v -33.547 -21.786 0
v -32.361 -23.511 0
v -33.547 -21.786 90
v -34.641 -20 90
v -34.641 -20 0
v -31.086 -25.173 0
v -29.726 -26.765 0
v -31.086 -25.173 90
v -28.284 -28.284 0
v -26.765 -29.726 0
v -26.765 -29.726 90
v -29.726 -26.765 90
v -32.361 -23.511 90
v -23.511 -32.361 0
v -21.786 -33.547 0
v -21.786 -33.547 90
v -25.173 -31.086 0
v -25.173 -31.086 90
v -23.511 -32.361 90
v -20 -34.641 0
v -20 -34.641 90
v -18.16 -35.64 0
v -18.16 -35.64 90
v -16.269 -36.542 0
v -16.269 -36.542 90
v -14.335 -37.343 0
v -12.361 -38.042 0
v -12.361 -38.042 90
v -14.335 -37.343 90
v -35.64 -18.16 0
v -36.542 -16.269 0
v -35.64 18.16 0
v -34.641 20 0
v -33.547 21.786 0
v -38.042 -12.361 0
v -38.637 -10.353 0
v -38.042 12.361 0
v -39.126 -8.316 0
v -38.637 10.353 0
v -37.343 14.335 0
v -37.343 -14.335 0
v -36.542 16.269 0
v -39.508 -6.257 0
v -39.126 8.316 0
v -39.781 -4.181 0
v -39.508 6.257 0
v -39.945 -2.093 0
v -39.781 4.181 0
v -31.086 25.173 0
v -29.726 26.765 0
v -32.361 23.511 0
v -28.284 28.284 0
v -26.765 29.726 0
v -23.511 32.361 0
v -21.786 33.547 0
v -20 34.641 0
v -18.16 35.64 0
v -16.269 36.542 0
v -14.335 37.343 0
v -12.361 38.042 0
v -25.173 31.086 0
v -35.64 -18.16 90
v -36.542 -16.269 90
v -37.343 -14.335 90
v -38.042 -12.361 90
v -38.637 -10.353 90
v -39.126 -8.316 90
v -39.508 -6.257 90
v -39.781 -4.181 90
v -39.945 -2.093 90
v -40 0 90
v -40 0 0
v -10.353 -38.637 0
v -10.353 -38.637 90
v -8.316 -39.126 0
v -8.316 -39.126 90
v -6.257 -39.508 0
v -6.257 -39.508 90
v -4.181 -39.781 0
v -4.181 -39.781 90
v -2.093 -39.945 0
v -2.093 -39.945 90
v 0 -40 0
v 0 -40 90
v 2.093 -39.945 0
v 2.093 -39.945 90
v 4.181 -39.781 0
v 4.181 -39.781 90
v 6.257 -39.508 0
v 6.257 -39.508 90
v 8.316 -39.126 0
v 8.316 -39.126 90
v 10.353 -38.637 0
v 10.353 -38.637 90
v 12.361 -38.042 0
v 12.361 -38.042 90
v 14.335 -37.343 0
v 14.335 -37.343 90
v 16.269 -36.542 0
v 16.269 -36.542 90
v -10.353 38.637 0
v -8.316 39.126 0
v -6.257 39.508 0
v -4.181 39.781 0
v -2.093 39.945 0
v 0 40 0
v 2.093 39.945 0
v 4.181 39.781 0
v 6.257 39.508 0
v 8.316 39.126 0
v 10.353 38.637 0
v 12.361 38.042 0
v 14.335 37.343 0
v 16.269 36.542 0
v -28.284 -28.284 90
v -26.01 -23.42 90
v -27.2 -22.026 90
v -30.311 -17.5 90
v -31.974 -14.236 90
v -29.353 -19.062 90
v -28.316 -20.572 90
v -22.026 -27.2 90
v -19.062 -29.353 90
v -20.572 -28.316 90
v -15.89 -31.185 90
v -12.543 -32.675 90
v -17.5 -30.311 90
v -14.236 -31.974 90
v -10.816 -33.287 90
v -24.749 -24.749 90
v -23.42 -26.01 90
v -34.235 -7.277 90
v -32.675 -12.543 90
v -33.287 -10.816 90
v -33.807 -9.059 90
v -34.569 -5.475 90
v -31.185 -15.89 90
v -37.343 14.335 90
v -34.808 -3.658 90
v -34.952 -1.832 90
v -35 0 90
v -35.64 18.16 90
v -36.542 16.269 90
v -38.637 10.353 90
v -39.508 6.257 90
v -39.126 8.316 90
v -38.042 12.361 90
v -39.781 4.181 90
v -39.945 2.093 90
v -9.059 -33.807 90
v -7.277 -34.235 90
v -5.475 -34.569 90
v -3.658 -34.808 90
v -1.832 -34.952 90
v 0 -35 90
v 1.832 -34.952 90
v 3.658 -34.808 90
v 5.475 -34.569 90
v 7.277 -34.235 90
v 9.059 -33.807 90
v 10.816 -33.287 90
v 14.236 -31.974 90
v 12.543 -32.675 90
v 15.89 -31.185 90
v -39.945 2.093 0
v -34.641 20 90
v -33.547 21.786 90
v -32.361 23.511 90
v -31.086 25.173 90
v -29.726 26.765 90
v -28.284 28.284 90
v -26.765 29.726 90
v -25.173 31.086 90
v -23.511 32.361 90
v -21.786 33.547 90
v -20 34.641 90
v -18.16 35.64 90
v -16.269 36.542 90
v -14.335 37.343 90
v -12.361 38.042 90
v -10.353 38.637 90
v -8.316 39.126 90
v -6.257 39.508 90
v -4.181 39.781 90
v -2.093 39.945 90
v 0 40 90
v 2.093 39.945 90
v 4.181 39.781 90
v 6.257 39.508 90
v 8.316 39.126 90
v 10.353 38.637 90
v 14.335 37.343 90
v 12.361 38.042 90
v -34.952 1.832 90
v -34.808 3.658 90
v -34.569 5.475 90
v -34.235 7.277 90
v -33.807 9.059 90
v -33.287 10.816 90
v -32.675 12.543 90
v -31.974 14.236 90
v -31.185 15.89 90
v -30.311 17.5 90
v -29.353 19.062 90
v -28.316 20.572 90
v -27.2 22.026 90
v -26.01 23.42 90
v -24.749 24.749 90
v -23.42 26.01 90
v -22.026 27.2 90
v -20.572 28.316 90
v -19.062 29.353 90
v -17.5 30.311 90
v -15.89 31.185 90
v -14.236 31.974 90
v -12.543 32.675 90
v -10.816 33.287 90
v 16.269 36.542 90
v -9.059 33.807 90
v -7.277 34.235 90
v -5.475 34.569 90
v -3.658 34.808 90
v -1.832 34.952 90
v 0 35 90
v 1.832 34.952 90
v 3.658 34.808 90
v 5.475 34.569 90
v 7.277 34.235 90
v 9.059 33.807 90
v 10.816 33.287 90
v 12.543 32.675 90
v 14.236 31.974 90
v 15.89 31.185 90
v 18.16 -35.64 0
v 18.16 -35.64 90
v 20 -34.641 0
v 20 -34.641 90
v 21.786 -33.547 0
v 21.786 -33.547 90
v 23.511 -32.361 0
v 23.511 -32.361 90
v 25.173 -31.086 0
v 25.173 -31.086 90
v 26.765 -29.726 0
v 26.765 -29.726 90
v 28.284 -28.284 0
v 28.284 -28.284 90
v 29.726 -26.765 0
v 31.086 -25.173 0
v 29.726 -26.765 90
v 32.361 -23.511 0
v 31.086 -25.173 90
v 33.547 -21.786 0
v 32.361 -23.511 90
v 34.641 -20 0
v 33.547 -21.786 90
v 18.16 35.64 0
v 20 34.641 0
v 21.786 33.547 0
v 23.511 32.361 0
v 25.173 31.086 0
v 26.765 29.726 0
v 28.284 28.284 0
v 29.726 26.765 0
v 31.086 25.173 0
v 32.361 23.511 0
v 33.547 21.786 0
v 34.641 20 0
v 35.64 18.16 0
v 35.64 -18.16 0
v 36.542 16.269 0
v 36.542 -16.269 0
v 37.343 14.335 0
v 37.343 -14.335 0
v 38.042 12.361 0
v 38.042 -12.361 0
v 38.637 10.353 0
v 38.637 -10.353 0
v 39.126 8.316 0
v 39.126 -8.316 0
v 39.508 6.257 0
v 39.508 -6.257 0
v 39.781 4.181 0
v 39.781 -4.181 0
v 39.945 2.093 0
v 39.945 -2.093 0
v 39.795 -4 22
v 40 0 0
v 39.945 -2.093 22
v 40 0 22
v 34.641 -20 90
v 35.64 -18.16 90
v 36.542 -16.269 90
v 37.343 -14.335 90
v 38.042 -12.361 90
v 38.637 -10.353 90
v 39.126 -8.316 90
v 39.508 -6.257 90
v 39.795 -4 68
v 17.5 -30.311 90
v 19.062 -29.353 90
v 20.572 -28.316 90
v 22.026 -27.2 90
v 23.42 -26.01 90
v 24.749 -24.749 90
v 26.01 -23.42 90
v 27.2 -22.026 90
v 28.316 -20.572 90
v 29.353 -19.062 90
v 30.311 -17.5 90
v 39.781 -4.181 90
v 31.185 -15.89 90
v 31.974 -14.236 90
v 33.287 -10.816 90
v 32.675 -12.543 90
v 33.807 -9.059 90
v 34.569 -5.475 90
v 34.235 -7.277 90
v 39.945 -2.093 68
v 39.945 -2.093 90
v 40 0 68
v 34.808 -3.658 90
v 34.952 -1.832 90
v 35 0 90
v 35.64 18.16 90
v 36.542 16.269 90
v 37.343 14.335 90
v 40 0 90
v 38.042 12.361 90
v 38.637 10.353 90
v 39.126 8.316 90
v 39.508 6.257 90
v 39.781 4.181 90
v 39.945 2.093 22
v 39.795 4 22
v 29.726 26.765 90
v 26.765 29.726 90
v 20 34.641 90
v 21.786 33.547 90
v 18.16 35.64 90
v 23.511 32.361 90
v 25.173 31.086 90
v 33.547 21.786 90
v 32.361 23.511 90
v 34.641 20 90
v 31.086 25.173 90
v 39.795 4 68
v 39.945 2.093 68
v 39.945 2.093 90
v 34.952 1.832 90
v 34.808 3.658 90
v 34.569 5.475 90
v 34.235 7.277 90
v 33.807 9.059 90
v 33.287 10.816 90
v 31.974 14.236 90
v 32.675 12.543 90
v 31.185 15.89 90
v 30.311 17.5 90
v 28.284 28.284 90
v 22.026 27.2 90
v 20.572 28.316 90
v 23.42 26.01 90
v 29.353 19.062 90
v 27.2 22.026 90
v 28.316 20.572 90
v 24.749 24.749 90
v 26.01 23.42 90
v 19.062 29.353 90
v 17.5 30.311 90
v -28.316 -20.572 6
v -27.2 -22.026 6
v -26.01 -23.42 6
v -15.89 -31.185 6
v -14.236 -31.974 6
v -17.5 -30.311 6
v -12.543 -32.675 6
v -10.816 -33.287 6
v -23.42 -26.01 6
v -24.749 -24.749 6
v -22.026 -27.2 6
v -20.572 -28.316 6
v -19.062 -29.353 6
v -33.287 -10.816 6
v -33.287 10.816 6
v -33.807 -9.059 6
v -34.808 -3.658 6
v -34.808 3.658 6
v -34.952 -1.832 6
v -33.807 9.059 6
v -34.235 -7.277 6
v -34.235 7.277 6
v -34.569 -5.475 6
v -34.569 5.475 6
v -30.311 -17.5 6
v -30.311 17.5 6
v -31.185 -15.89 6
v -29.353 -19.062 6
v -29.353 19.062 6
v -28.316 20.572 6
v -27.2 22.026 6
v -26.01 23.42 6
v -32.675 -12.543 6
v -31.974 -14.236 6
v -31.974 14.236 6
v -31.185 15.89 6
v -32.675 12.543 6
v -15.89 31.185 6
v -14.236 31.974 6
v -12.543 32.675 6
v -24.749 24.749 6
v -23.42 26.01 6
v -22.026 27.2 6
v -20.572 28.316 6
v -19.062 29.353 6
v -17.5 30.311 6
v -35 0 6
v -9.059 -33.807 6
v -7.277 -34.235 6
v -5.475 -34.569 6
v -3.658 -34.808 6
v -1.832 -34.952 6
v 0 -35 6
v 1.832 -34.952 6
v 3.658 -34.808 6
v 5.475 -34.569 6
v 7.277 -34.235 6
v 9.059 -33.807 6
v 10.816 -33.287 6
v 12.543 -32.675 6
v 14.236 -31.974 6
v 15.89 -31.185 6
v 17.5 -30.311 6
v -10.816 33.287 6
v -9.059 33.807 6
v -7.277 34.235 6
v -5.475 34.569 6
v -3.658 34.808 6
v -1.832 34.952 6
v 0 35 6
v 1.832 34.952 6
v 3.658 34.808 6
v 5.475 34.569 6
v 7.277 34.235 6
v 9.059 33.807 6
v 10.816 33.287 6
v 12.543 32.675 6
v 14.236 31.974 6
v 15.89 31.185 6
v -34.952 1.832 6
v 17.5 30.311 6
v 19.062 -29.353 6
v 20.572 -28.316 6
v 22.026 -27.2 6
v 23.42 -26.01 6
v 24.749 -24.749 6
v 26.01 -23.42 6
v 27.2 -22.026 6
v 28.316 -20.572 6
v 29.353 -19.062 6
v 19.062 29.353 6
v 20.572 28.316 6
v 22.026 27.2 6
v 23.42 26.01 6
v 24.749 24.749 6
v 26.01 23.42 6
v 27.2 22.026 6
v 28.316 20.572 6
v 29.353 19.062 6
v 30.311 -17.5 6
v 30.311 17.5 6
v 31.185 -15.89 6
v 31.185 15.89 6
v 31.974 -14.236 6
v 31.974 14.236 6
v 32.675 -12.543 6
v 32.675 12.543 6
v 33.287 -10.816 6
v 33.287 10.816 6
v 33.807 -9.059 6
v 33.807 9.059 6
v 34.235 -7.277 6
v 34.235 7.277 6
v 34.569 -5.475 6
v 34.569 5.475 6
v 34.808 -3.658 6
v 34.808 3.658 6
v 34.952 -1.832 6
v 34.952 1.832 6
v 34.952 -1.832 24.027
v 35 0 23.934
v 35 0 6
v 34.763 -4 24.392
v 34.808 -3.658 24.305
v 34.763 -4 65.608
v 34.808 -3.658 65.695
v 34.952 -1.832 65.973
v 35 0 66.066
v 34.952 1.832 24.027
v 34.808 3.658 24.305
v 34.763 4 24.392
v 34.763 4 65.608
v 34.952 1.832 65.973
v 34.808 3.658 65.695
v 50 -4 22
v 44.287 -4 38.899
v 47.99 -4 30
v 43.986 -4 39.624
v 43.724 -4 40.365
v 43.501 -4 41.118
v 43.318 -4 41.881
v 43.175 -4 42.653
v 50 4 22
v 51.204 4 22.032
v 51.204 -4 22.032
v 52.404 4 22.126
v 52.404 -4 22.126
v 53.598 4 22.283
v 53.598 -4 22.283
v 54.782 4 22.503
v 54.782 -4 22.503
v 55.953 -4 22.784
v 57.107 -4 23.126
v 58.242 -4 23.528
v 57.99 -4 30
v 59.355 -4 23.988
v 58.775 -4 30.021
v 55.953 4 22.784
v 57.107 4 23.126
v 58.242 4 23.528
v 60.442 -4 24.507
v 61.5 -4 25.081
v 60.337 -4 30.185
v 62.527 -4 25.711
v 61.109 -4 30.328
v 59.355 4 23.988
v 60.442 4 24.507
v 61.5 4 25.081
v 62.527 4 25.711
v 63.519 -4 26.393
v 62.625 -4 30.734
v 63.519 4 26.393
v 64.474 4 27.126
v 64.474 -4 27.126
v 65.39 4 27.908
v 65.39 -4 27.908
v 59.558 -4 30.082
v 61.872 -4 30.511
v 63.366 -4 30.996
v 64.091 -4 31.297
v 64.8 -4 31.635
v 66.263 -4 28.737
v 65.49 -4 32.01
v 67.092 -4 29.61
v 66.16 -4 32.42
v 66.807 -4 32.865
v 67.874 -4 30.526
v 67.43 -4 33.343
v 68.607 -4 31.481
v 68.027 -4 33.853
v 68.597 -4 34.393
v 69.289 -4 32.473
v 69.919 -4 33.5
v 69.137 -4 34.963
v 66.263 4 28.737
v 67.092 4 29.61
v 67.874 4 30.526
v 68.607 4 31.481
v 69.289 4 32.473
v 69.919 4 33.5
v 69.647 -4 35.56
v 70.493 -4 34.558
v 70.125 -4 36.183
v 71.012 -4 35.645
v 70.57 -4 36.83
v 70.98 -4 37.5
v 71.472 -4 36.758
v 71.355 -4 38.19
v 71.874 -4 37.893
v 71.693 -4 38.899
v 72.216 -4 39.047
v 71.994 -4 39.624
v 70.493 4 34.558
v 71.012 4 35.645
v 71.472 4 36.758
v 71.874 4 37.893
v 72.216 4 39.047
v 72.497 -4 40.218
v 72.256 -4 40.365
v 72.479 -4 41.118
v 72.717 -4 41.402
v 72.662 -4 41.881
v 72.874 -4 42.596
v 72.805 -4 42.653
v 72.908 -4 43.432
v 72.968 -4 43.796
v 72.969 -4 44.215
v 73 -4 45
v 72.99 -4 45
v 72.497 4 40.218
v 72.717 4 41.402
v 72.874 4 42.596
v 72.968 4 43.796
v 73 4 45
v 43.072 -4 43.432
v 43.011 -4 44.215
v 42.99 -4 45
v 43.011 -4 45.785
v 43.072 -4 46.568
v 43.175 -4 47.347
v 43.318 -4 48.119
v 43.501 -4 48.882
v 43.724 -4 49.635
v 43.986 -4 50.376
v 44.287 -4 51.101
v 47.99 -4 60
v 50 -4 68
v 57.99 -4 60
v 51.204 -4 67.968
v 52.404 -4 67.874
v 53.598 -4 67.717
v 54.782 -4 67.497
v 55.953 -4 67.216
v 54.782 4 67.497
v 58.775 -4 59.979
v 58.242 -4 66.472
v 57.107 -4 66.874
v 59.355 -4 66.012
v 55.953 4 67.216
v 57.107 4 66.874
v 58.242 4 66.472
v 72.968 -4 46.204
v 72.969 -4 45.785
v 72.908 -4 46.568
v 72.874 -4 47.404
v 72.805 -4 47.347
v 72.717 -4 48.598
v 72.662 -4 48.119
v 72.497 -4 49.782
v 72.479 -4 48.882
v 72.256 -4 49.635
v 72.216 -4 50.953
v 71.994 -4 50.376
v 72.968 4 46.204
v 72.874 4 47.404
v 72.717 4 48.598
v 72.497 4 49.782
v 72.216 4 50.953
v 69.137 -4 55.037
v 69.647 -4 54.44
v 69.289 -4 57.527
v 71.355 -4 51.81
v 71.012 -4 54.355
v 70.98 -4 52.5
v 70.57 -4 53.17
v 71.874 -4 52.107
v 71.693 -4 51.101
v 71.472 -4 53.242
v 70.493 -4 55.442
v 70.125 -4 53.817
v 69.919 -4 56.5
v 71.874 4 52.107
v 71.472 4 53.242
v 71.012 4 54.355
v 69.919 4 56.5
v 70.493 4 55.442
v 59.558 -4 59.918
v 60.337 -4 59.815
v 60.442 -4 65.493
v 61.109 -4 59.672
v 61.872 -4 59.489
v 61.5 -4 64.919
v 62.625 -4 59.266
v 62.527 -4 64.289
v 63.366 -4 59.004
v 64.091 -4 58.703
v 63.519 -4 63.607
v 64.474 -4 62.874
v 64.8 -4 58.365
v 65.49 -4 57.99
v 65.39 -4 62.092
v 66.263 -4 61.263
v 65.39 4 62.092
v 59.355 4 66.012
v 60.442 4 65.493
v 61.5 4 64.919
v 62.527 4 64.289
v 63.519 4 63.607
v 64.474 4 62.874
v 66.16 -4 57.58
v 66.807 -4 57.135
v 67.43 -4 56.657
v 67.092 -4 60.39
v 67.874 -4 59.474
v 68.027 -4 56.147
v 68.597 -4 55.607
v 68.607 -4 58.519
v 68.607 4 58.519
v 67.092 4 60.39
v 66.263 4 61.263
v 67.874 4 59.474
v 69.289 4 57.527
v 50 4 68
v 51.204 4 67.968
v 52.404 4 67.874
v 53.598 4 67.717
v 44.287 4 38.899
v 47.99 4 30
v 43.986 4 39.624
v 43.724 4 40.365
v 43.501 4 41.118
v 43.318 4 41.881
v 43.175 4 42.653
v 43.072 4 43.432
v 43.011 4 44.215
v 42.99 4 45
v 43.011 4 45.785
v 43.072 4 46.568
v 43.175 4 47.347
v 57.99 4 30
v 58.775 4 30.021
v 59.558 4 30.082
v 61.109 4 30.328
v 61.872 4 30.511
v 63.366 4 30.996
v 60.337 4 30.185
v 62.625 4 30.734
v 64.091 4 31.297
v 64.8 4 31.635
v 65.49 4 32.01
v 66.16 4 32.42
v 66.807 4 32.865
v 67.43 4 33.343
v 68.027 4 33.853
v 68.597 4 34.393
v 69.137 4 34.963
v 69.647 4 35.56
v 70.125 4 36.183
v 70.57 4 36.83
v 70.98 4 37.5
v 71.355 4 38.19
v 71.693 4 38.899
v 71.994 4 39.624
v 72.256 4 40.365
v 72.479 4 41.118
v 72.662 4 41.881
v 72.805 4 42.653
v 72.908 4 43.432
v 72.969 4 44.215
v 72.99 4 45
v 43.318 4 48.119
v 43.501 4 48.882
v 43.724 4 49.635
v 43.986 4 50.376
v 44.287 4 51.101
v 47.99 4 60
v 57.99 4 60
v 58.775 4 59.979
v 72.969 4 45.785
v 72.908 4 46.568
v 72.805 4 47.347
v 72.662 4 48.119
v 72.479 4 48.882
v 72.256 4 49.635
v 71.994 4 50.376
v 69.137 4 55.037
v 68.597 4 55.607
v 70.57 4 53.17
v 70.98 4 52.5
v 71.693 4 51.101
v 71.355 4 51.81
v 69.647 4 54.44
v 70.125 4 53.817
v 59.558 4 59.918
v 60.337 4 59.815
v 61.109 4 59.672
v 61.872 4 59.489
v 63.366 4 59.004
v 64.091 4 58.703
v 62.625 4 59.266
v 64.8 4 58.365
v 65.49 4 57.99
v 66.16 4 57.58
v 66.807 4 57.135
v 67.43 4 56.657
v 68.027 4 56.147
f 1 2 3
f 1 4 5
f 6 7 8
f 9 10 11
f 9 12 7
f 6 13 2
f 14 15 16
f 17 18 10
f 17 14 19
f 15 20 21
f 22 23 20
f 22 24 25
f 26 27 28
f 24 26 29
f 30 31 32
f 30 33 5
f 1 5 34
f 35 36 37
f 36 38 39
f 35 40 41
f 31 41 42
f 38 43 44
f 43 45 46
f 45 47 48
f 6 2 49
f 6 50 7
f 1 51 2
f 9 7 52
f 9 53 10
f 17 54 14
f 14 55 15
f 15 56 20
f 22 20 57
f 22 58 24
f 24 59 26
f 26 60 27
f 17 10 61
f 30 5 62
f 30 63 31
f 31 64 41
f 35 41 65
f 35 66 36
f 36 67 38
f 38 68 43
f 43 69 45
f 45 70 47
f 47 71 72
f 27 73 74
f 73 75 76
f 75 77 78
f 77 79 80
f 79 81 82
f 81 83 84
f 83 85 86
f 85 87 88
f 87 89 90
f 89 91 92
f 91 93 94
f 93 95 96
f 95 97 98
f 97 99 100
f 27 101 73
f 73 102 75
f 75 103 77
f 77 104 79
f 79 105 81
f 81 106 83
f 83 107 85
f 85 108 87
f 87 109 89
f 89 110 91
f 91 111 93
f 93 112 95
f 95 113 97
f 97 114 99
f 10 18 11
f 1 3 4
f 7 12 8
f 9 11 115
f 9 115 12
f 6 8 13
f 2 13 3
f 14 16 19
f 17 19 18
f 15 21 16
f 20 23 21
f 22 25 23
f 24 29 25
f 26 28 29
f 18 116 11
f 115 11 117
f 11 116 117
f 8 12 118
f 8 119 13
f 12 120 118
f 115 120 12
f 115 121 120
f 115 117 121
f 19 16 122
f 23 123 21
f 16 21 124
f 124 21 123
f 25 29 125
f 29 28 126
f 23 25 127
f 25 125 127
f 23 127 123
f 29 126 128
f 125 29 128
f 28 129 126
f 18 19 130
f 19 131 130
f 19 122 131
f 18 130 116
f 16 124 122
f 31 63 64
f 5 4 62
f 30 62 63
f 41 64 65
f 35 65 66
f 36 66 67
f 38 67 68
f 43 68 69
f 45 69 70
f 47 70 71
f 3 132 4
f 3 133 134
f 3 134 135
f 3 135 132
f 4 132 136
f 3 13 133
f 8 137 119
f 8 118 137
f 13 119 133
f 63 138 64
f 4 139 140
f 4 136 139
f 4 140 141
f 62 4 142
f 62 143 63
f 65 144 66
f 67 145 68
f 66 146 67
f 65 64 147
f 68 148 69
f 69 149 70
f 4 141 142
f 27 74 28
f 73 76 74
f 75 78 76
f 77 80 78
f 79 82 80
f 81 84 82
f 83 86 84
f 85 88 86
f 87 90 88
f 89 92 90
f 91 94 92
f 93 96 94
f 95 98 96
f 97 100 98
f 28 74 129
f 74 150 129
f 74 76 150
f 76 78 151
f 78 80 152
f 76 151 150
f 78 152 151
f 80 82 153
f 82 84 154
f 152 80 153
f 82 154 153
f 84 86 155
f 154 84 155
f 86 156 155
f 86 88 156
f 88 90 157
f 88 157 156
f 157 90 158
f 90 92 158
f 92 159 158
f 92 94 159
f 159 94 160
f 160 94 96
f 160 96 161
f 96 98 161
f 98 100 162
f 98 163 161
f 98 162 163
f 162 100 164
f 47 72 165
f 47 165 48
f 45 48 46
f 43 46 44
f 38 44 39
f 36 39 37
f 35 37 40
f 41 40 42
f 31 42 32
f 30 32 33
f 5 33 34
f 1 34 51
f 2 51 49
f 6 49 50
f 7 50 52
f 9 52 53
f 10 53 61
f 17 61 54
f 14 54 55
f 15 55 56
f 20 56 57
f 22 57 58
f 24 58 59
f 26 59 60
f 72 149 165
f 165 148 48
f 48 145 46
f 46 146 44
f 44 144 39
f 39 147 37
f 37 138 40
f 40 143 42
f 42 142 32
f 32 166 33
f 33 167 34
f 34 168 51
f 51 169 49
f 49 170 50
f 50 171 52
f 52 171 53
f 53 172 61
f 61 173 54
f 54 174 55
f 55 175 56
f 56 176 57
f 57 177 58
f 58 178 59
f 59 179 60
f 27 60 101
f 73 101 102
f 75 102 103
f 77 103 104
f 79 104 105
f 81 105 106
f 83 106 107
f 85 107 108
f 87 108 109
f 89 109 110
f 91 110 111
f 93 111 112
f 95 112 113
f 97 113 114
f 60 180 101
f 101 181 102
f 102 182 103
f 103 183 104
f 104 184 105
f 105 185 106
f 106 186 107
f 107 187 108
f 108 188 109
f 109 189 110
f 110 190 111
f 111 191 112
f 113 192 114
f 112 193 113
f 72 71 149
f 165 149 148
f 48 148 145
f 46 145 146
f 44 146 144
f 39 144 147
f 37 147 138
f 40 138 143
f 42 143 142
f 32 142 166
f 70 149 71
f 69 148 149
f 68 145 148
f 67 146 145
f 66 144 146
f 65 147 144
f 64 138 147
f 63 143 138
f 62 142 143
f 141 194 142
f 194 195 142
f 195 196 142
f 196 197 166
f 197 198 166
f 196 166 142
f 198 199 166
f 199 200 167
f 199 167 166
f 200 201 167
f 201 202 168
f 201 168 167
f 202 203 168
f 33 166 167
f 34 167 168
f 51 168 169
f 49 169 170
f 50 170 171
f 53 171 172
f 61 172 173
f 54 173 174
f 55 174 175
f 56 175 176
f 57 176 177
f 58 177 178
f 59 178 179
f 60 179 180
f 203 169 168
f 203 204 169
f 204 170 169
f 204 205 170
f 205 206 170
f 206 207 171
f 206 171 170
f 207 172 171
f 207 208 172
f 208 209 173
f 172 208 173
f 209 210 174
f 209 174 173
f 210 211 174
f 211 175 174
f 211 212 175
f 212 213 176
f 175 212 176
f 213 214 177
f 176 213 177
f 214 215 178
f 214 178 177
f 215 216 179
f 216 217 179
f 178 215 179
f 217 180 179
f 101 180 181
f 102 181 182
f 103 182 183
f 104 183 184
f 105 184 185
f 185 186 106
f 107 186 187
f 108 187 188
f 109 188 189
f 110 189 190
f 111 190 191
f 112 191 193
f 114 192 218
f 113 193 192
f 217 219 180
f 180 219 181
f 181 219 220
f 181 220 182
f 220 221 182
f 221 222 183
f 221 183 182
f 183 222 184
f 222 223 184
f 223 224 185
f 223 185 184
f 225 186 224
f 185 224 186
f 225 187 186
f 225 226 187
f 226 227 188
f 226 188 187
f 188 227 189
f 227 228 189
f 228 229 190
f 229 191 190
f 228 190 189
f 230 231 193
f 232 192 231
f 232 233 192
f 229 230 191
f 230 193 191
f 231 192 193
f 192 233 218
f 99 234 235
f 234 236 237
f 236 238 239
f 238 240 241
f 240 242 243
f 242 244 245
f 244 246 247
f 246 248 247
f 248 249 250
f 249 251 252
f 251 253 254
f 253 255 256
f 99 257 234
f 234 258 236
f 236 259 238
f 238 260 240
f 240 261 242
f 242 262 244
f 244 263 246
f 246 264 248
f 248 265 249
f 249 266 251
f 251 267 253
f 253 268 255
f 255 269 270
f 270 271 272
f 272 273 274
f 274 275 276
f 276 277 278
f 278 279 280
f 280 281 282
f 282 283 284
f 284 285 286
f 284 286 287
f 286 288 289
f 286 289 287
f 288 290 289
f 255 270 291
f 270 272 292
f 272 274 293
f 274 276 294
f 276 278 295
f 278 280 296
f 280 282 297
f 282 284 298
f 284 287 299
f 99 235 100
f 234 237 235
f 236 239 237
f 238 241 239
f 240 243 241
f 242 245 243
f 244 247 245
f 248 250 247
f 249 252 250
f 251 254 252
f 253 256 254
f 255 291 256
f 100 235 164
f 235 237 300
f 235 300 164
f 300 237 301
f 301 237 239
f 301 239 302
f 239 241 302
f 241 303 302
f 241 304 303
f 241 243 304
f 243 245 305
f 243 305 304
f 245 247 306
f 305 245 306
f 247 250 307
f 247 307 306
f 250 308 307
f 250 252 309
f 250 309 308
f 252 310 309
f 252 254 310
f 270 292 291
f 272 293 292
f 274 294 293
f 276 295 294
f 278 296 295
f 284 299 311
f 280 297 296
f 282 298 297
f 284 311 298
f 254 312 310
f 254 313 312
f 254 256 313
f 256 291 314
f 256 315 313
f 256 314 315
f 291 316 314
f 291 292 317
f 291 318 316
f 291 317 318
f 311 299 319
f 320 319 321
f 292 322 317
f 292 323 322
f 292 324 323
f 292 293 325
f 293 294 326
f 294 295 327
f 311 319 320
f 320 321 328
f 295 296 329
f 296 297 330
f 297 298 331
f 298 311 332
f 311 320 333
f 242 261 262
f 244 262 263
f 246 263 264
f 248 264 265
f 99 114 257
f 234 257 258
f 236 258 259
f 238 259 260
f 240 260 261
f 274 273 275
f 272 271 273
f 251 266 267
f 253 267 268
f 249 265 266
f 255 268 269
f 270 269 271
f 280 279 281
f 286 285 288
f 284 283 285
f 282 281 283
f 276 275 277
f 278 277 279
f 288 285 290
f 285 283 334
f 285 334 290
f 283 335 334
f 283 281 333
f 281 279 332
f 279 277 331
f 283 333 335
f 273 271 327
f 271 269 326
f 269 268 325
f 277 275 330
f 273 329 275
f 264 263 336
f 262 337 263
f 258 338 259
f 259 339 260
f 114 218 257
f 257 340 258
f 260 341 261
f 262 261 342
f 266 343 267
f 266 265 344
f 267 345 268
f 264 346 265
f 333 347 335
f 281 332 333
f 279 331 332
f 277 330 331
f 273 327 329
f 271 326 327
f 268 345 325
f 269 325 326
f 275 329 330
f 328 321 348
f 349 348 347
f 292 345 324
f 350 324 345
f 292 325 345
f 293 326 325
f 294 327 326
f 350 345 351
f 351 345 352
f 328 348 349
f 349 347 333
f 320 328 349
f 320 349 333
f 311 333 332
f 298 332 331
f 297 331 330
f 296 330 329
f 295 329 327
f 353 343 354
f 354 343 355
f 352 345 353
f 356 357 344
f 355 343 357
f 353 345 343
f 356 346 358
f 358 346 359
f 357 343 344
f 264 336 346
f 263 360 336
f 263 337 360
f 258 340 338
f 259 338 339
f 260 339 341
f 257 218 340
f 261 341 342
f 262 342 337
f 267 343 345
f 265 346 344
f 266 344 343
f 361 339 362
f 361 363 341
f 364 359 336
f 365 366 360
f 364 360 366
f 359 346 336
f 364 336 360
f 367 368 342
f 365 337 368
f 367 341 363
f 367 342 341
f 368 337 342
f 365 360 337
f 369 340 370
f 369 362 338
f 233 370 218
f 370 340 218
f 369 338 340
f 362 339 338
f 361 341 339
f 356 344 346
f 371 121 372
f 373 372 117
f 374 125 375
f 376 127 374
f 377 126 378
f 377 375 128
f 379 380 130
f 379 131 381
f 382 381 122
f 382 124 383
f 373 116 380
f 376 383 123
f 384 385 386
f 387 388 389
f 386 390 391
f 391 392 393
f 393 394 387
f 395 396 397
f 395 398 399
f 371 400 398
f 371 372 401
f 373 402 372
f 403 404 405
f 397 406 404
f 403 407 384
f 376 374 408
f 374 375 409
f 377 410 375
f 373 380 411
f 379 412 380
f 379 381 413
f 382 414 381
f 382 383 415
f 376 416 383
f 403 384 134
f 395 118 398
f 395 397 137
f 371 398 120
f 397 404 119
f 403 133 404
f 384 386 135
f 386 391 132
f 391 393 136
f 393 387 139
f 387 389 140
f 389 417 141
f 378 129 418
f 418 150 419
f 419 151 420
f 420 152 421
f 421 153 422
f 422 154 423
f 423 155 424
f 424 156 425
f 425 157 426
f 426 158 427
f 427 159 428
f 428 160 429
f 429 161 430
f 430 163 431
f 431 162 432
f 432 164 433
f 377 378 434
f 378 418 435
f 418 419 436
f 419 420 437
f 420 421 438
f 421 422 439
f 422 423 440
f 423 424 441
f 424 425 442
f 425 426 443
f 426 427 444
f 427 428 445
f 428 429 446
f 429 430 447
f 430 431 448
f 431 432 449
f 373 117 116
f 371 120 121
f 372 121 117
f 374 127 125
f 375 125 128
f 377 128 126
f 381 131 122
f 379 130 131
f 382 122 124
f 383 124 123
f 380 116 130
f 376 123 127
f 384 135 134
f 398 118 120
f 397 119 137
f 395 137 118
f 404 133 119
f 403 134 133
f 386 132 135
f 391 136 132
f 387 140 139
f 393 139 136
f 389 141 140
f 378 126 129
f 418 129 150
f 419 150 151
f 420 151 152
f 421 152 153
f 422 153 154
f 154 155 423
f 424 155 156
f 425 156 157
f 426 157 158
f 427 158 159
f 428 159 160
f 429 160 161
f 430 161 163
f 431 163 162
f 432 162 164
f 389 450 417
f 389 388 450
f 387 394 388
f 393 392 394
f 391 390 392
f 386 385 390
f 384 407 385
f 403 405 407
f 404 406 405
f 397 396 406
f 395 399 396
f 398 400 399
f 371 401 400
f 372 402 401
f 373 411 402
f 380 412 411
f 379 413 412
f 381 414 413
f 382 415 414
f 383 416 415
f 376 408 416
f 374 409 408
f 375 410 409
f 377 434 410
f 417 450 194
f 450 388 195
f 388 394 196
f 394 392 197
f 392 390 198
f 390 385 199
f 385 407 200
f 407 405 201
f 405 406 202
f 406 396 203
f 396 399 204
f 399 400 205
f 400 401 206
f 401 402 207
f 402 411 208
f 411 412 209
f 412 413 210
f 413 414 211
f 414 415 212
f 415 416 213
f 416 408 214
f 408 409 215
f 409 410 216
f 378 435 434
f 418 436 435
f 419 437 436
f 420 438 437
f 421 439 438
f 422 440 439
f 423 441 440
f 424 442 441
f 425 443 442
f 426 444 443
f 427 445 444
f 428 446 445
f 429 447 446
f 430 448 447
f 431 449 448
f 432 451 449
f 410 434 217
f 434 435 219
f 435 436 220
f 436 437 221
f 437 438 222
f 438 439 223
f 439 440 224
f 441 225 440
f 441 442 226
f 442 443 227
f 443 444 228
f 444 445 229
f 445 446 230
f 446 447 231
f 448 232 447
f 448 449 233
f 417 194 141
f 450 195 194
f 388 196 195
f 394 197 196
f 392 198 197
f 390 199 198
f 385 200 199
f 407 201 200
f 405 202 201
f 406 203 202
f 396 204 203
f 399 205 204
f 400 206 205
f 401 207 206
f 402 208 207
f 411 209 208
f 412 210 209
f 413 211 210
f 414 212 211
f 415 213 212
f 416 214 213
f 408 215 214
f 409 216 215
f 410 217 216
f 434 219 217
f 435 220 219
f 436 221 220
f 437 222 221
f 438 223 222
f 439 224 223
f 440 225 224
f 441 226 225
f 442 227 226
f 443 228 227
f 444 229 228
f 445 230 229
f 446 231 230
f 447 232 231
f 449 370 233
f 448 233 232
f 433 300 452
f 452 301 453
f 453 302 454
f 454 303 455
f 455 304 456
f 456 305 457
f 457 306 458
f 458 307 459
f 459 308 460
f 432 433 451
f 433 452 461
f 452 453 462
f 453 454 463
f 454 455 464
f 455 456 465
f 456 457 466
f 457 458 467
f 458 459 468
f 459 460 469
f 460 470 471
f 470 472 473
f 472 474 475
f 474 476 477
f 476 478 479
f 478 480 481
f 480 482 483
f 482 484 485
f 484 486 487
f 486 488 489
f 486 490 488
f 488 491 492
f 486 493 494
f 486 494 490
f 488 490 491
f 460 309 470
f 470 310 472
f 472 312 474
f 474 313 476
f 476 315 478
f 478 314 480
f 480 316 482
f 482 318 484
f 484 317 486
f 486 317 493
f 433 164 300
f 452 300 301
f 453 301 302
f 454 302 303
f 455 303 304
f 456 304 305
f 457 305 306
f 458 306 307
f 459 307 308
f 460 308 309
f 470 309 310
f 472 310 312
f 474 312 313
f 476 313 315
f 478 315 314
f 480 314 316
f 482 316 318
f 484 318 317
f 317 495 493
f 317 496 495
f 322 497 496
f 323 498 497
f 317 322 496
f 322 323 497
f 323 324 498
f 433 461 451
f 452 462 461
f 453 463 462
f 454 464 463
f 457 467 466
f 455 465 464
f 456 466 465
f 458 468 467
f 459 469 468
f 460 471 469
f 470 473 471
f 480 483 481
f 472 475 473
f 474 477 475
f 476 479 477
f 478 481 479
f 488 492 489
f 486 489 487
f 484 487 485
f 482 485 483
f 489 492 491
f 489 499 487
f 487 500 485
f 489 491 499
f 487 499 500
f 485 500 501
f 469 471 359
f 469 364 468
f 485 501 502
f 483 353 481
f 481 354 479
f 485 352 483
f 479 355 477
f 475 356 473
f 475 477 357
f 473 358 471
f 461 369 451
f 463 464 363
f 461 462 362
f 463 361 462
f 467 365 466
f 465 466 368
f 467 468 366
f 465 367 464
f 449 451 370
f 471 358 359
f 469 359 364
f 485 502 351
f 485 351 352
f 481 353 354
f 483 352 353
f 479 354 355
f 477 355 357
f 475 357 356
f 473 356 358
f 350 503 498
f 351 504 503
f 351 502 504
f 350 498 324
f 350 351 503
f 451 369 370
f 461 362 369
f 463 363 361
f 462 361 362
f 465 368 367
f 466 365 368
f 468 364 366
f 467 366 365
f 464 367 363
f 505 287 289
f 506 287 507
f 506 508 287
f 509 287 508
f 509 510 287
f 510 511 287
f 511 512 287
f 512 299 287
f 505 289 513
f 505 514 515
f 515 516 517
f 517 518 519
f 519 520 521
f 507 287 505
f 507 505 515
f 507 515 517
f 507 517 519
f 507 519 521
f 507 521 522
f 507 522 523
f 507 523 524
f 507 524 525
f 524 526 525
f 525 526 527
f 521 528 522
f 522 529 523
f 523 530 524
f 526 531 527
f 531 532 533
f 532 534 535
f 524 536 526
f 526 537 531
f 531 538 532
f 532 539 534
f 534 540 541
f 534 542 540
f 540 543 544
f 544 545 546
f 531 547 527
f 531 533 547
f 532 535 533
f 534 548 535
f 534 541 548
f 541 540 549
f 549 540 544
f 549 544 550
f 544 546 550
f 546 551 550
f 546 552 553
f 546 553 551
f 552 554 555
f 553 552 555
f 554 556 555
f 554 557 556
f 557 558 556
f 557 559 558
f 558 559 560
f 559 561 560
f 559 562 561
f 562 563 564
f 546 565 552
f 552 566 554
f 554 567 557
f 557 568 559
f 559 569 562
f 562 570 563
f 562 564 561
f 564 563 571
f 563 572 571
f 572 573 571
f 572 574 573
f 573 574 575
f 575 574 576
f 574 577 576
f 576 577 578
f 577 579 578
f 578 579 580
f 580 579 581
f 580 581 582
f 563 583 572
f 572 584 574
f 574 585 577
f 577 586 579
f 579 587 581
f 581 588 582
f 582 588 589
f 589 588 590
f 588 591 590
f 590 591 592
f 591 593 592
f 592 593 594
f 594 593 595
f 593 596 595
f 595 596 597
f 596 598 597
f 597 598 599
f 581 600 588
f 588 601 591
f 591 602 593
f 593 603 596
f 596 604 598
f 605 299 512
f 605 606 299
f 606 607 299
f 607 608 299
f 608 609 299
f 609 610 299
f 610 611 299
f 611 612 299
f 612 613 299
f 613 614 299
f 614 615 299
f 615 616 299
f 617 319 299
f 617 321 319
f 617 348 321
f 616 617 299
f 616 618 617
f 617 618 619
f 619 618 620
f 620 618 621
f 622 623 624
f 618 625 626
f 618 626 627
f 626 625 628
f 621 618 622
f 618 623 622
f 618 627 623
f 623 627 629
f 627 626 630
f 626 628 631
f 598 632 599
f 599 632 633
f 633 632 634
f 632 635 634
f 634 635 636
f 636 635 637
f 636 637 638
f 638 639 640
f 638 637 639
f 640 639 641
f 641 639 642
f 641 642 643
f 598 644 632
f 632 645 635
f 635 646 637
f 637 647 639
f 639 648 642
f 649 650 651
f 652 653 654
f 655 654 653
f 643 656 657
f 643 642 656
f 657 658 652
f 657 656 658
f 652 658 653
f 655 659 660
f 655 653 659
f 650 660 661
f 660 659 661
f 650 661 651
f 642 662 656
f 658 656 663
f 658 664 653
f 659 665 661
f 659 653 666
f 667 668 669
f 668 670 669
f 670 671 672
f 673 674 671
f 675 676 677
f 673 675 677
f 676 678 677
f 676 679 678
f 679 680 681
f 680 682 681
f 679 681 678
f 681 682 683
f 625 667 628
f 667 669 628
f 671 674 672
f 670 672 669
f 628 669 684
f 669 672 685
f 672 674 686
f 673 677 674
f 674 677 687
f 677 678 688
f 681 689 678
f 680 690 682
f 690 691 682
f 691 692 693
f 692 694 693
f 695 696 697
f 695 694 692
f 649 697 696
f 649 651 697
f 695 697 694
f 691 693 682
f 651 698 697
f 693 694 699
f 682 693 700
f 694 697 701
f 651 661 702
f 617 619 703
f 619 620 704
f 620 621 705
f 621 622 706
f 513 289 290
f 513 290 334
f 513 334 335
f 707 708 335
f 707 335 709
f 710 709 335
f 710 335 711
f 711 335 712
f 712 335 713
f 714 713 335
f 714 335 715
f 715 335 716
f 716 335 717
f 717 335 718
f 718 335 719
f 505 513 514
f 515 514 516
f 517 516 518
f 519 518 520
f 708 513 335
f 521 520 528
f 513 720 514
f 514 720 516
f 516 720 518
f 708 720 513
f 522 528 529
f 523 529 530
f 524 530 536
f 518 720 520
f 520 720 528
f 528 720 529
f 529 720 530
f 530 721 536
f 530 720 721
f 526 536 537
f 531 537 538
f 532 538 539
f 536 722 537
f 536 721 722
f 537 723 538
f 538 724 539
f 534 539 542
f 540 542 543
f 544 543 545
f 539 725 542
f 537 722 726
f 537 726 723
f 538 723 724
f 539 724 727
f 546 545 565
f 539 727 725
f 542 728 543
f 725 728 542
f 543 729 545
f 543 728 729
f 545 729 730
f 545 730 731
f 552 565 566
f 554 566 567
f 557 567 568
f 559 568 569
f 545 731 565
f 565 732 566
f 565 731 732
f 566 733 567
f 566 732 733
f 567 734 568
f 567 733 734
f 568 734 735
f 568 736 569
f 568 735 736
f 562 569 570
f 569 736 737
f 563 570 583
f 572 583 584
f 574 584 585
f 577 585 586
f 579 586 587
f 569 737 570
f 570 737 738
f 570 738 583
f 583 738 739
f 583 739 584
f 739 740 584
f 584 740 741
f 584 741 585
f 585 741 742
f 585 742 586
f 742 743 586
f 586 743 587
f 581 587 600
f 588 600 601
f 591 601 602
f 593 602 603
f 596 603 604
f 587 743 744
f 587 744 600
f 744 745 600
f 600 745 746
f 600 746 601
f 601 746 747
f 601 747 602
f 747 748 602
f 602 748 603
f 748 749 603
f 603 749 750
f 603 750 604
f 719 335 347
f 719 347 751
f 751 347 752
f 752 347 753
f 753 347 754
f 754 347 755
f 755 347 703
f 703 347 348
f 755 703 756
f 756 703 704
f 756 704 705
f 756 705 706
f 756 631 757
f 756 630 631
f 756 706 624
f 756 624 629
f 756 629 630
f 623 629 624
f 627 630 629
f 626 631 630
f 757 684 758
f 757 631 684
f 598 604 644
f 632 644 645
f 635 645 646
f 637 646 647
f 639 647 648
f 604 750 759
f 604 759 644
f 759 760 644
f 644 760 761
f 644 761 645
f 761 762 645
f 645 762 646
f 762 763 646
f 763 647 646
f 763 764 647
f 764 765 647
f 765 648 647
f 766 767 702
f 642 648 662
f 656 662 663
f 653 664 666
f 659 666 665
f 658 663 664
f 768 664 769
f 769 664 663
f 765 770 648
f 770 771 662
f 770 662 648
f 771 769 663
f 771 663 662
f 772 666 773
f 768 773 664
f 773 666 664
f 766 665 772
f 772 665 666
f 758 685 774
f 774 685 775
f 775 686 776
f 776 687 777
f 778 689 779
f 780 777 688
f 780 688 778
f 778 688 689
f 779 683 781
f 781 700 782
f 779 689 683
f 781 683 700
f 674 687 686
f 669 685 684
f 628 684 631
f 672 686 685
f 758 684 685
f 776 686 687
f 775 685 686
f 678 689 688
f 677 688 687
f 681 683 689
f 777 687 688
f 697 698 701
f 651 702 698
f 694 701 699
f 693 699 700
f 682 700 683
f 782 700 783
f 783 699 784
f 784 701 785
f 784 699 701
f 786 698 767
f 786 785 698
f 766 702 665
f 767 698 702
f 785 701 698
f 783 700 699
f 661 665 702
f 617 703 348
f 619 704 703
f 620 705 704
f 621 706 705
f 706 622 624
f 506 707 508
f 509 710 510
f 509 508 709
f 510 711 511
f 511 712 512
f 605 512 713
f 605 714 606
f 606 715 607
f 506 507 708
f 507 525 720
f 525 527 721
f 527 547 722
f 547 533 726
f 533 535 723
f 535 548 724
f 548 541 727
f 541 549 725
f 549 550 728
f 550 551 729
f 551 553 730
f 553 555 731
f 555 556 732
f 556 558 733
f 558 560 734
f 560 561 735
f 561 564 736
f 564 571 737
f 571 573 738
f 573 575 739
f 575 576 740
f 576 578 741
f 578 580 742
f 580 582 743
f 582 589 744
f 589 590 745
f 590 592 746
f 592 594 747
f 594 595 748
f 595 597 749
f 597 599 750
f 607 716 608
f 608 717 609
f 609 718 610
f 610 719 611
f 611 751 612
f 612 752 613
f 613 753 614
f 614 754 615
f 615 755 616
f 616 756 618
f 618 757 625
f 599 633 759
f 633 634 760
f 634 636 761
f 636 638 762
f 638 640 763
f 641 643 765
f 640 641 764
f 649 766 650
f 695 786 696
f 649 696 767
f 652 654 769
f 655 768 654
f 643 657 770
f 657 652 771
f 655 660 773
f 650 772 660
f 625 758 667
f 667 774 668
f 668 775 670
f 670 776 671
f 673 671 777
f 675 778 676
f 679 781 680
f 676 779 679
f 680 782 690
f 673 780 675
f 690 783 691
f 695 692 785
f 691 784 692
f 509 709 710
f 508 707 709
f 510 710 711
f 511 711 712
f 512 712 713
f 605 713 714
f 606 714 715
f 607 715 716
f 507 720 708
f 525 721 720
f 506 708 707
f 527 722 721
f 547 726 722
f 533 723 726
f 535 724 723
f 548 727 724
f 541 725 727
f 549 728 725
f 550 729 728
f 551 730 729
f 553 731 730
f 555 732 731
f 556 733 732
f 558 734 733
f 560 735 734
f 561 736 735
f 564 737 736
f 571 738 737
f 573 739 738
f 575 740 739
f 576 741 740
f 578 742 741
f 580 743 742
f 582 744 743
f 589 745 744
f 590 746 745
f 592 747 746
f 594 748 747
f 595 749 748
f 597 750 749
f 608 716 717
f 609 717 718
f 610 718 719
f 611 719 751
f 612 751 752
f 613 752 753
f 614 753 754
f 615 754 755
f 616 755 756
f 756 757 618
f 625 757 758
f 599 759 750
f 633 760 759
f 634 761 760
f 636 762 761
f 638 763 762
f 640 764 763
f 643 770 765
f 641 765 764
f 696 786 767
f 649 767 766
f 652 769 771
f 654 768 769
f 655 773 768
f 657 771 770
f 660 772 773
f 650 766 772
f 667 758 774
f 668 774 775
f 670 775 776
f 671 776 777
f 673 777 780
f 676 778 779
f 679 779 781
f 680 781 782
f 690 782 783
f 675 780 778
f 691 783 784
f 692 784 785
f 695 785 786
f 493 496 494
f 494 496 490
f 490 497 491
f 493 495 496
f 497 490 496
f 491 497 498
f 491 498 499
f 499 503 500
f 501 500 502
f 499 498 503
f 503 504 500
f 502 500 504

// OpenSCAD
// ===== Mug with D-shaped handle on +X side =====

$fn = 120;

// --- Body parameters ---
outer_d   = 80;
inner_d   = 70;
mug_h     = 90;
bottom_th = 6;

// --- Handle parameters ---
hole_h    = 30;   // 取手内側の空間 高さ
hole_w    = 25;   // 取手内側の空間 幅
bar       = 8;    // 取手の太さ(断面)
handle_z  = mug_h / 2;              // 高さ方向の中央
overlap   = 4;    // 本体へ食い込ませる量(確実に union)

// 取手の外形サイズ
out_h = hole_h + 2*bar;   // 46
out_w = hole_w + bar;     // 33  (本体側は直線なので片側のみ)

// D 字断面(XZ 平面上の 2D プロファイル)を作って Y 方向に押し出す
module d_profile(w, h) {
    // 左端(本体側)が直線、右端が半円 の D 形状
    hull() {
        translate([0, -h/2]) square([0.01, h]);          // 直線側
        translate([w - h/2, 0]) circle(d = h);           // 半円側
    }
}

module handle() {
    x0 = outer_d/2 - overlap;   // 直線側の開始 X(本体内部に食い込む)
    difference() {
        // 外形
        translate([x0, bar/2, handle_z])
            rotate([90, 0, 0])
                linear_extrude(height = bar)
                    d_profile(out_w + overlap, out_h);
        // 内側の穴
        translate([x0 + bar + overlap, bar, handle_z])
            rotate([90, 0, 0])
                linear_extrude(height = bar * 2, center = false)
                    translate([-0.01, 0])
                        d_profile(hole_w, hole_h);
    }
}

module body() {
    difference() {
        cylinder(d = outer_d, h = mug_h);
        translate([0, 0, bottom_th])
            cylinder(d = inner_d, h = mug_h);   // 上へ突き抜ける
    }
}

module mug() {
    union() {
        body();
        intersection() {
            handle();
            // 取手が本体内部(中空部)へ侵入しないようにクリップ
            union() {
                // 本体外側の領域(+X 側)
                difference() {
                    translate([0, -100, -1])
                        cube([200, 200, mug_h + 2]);
                    translate([0, 0, bottom_th])
                        cylinder(d = inner_d, h = mug_h);
                }
                // 本体の実体部分は残す
                translate([0, -100, -1]) cube([0.001, 200, mug_h + 2]);
            }
        }
    }
}

mug();
